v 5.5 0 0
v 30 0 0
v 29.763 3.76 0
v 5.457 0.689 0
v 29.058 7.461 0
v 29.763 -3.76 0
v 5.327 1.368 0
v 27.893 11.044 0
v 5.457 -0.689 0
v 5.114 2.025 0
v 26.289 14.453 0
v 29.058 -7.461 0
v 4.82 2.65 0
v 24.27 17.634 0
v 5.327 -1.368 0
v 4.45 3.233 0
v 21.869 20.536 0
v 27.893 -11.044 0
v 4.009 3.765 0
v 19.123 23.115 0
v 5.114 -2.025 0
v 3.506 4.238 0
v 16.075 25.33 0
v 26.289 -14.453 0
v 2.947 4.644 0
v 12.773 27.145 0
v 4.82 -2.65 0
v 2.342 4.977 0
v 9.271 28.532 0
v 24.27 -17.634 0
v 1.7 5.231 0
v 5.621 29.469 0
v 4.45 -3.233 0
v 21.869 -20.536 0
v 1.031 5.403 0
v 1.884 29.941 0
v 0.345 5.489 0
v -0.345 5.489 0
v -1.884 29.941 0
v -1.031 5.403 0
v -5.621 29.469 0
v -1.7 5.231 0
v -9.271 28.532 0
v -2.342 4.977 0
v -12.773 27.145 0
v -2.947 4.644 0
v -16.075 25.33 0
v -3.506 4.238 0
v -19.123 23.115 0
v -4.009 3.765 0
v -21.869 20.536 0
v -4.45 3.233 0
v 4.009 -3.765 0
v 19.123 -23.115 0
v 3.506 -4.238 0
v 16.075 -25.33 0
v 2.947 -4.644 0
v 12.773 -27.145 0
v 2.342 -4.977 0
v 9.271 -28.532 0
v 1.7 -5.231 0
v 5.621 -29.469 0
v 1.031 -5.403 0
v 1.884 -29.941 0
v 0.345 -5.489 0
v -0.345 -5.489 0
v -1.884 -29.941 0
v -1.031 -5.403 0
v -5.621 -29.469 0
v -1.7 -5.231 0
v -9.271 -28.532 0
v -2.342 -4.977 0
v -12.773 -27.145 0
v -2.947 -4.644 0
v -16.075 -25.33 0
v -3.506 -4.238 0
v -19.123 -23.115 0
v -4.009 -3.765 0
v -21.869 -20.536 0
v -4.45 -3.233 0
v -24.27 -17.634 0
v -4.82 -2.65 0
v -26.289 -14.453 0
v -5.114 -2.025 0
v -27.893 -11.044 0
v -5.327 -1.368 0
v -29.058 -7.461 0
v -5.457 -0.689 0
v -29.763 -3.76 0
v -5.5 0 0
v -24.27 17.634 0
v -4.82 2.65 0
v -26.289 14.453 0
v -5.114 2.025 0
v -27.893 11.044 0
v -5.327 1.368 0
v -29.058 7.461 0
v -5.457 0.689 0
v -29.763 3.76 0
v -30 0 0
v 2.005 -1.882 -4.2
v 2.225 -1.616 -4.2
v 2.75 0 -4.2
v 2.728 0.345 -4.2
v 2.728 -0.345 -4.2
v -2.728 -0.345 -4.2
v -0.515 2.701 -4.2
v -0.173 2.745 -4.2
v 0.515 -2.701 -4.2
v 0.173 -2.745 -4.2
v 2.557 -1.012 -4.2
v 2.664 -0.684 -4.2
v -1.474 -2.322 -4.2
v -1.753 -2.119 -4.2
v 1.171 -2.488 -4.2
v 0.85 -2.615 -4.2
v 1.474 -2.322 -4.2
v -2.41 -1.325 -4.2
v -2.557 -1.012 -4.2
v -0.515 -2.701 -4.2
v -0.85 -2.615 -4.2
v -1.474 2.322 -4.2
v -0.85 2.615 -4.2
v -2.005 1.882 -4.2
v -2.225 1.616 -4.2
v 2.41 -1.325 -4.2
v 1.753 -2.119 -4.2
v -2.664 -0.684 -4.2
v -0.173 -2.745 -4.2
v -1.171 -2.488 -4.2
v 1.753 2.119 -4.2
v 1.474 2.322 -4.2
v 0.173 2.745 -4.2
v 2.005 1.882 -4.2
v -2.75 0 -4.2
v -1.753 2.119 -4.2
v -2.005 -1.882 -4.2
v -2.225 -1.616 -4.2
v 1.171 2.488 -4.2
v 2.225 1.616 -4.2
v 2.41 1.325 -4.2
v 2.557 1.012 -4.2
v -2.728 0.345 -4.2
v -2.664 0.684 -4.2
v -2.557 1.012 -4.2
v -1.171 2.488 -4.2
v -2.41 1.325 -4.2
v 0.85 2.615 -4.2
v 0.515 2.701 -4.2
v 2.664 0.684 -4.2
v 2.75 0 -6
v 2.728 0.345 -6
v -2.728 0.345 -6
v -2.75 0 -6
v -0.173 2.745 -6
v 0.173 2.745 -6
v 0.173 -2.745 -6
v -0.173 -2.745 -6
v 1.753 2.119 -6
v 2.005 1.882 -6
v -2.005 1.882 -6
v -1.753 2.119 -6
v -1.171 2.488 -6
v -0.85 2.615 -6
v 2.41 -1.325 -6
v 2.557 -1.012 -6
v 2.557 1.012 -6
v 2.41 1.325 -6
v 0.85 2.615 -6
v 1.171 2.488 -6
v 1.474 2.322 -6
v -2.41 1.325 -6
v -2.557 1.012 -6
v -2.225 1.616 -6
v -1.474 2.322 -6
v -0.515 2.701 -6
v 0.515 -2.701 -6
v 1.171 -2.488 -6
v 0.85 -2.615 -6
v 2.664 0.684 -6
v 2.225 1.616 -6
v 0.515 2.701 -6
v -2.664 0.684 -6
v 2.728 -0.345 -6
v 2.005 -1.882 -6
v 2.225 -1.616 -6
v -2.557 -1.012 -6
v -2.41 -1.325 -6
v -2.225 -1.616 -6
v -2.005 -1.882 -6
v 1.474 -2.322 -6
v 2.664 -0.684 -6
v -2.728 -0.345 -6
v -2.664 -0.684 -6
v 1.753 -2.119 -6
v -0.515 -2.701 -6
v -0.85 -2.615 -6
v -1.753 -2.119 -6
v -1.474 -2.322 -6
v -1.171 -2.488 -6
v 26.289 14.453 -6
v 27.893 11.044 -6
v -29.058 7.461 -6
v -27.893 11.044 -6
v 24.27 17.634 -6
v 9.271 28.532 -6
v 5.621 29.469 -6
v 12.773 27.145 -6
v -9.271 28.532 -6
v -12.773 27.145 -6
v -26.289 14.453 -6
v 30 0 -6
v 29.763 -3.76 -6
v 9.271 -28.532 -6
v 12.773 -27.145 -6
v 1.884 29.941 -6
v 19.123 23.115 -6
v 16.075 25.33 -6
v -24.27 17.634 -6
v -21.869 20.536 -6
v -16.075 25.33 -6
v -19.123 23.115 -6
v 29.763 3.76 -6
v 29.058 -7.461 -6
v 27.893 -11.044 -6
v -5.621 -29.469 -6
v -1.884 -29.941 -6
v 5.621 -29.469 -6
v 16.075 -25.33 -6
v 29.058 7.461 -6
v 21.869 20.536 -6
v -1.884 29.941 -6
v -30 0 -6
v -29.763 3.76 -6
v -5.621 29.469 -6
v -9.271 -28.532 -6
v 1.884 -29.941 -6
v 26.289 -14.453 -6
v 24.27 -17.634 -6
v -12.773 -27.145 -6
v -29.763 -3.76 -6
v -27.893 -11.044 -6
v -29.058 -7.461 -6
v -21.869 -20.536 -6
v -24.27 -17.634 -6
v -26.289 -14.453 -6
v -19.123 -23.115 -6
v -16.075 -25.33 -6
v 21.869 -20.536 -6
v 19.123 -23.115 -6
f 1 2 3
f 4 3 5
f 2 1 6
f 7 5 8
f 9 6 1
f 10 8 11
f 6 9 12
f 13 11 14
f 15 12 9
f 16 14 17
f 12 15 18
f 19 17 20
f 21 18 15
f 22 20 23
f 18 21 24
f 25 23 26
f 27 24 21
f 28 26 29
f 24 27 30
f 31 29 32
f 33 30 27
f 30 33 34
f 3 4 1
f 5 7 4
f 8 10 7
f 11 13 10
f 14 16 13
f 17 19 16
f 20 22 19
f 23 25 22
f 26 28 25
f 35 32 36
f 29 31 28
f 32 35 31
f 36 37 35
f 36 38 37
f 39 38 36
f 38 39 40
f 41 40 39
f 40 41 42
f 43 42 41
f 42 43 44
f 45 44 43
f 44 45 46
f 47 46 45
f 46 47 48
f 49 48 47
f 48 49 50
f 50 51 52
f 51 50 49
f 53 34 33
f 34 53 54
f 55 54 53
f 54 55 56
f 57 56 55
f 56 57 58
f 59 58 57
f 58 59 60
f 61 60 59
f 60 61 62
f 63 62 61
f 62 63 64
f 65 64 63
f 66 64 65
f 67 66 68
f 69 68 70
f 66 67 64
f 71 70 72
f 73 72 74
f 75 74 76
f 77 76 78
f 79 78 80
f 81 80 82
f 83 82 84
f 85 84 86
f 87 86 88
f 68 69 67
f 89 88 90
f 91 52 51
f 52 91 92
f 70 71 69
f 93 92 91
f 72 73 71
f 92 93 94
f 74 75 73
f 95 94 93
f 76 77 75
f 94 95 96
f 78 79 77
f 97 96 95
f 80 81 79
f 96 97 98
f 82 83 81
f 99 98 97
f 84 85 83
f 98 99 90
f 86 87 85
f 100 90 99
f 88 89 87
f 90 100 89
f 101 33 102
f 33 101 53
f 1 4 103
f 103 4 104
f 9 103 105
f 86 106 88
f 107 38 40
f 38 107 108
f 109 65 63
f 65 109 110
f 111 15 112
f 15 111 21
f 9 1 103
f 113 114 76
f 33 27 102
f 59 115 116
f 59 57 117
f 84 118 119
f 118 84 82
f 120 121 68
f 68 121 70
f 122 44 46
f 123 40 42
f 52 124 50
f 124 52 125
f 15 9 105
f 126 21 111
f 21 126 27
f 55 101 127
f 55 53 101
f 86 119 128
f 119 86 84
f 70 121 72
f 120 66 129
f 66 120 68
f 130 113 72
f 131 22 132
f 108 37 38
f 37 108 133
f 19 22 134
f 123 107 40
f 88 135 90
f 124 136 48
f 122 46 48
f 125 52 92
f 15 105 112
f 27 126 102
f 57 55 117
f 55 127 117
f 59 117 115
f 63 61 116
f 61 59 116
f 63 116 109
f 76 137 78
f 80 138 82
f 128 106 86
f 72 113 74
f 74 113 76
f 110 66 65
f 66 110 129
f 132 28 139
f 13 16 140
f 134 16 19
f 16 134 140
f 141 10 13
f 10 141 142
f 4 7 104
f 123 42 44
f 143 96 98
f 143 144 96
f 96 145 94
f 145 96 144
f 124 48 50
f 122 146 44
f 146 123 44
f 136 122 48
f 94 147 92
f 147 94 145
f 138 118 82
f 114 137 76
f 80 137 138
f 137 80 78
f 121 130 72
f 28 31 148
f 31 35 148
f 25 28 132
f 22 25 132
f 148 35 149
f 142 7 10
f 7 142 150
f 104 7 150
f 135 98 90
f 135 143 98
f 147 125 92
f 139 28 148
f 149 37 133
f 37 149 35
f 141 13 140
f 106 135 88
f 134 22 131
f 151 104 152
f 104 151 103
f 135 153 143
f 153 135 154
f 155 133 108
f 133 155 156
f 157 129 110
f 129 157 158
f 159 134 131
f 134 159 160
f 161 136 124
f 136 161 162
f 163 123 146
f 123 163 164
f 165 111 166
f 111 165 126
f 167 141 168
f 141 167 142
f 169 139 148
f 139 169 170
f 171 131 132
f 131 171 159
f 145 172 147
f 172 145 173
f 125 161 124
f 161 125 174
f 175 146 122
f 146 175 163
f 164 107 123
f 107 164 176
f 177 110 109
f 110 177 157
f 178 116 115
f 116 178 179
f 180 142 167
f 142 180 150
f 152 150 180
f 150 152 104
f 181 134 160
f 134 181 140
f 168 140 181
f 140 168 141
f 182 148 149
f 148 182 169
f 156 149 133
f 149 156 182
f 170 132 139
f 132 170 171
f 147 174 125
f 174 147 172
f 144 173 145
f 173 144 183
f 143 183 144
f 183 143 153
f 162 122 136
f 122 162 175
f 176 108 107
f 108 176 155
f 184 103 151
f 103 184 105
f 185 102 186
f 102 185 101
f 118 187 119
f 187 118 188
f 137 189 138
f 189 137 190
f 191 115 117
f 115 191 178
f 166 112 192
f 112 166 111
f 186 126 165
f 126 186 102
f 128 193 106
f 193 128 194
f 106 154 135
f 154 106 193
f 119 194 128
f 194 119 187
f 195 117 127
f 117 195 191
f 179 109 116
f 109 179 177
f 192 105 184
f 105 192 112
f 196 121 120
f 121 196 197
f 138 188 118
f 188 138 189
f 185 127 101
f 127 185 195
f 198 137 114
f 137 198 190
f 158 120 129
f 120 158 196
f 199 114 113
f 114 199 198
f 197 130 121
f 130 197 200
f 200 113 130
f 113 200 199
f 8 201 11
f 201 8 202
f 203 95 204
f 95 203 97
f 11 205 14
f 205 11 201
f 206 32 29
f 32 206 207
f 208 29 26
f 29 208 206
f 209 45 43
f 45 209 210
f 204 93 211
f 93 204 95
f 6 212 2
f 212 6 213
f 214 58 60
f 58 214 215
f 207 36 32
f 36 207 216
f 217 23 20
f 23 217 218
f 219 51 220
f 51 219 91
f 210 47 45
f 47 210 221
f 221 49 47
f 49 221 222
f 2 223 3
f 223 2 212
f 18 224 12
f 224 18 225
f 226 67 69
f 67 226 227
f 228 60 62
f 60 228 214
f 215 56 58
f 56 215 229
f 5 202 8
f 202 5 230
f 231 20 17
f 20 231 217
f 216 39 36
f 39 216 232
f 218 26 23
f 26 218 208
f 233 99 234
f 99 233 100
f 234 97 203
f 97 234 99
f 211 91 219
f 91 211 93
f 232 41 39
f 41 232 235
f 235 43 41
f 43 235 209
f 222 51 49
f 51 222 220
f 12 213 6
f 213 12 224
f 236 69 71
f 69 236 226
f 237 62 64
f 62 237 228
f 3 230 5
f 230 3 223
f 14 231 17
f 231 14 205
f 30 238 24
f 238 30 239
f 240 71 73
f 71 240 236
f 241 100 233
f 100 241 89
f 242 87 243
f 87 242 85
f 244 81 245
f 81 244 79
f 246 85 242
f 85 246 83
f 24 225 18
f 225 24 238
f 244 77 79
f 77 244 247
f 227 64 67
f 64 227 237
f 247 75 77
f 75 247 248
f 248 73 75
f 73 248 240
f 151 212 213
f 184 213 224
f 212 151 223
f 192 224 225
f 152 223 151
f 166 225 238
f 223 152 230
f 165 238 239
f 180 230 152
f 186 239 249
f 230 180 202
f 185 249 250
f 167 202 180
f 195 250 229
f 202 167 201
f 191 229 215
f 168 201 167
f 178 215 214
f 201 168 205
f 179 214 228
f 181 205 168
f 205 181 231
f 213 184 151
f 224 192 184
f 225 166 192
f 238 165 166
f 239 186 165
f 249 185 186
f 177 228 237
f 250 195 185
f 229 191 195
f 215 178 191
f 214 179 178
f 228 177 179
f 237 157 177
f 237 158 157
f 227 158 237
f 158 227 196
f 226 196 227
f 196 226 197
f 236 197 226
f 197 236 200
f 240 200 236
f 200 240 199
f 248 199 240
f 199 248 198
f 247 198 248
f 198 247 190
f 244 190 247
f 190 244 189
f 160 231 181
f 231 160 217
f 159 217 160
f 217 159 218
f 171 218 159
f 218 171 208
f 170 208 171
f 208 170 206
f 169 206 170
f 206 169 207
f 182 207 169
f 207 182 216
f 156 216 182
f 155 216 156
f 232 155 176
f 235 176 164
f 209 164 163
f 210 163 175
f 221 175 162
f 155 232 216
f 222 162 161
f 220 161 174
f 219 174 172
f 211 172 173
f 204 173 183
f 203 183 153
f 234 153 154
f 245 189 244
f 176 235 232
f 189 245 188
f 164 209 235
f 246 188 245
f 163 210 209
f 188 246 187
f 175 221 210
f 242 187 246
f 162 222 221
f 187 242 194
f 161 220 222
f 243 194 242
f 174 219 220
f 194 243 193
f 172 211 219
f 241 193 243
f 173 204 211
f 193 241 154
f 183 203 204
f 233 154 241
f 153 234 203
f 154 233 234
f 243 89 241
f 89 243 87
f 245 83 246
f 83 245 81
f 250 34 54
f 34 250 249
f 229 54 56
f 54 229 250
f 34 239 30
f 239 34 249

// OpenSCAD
$fn = 50;


difference() {
	union() {
		translate(v = [0, 0, -6.0000000000]) {
			cylinder(h = 6, r = 30.0000000000);
		}
	}
	union() {
		translate(v = [0, 0, 0]) {
			rotate(a = [0, 0, 0]) {
				difference() {
					union() {
						translate(v = [0, 0, -9.0000000000]) {
							cylinder(h = 9, r = 2.2500000000);
						}
						translate(v = [0, 0, -4.2000000000]) {
							cylinder(h = 4.2000000000, r1 = 2.7500000000, r2 = 5.5000000000);
						}
						translate(v = [0, 0, -9.0000000000]) {
							cylinder(h = 9, r = 2.7500000000);
						}
						translate(v = [0, 0, -9.0000000000]) {
							cylinder(h = 9, r = 2.2500000000);
						}
					}
					union();
				}
			}
		}
	}
}
